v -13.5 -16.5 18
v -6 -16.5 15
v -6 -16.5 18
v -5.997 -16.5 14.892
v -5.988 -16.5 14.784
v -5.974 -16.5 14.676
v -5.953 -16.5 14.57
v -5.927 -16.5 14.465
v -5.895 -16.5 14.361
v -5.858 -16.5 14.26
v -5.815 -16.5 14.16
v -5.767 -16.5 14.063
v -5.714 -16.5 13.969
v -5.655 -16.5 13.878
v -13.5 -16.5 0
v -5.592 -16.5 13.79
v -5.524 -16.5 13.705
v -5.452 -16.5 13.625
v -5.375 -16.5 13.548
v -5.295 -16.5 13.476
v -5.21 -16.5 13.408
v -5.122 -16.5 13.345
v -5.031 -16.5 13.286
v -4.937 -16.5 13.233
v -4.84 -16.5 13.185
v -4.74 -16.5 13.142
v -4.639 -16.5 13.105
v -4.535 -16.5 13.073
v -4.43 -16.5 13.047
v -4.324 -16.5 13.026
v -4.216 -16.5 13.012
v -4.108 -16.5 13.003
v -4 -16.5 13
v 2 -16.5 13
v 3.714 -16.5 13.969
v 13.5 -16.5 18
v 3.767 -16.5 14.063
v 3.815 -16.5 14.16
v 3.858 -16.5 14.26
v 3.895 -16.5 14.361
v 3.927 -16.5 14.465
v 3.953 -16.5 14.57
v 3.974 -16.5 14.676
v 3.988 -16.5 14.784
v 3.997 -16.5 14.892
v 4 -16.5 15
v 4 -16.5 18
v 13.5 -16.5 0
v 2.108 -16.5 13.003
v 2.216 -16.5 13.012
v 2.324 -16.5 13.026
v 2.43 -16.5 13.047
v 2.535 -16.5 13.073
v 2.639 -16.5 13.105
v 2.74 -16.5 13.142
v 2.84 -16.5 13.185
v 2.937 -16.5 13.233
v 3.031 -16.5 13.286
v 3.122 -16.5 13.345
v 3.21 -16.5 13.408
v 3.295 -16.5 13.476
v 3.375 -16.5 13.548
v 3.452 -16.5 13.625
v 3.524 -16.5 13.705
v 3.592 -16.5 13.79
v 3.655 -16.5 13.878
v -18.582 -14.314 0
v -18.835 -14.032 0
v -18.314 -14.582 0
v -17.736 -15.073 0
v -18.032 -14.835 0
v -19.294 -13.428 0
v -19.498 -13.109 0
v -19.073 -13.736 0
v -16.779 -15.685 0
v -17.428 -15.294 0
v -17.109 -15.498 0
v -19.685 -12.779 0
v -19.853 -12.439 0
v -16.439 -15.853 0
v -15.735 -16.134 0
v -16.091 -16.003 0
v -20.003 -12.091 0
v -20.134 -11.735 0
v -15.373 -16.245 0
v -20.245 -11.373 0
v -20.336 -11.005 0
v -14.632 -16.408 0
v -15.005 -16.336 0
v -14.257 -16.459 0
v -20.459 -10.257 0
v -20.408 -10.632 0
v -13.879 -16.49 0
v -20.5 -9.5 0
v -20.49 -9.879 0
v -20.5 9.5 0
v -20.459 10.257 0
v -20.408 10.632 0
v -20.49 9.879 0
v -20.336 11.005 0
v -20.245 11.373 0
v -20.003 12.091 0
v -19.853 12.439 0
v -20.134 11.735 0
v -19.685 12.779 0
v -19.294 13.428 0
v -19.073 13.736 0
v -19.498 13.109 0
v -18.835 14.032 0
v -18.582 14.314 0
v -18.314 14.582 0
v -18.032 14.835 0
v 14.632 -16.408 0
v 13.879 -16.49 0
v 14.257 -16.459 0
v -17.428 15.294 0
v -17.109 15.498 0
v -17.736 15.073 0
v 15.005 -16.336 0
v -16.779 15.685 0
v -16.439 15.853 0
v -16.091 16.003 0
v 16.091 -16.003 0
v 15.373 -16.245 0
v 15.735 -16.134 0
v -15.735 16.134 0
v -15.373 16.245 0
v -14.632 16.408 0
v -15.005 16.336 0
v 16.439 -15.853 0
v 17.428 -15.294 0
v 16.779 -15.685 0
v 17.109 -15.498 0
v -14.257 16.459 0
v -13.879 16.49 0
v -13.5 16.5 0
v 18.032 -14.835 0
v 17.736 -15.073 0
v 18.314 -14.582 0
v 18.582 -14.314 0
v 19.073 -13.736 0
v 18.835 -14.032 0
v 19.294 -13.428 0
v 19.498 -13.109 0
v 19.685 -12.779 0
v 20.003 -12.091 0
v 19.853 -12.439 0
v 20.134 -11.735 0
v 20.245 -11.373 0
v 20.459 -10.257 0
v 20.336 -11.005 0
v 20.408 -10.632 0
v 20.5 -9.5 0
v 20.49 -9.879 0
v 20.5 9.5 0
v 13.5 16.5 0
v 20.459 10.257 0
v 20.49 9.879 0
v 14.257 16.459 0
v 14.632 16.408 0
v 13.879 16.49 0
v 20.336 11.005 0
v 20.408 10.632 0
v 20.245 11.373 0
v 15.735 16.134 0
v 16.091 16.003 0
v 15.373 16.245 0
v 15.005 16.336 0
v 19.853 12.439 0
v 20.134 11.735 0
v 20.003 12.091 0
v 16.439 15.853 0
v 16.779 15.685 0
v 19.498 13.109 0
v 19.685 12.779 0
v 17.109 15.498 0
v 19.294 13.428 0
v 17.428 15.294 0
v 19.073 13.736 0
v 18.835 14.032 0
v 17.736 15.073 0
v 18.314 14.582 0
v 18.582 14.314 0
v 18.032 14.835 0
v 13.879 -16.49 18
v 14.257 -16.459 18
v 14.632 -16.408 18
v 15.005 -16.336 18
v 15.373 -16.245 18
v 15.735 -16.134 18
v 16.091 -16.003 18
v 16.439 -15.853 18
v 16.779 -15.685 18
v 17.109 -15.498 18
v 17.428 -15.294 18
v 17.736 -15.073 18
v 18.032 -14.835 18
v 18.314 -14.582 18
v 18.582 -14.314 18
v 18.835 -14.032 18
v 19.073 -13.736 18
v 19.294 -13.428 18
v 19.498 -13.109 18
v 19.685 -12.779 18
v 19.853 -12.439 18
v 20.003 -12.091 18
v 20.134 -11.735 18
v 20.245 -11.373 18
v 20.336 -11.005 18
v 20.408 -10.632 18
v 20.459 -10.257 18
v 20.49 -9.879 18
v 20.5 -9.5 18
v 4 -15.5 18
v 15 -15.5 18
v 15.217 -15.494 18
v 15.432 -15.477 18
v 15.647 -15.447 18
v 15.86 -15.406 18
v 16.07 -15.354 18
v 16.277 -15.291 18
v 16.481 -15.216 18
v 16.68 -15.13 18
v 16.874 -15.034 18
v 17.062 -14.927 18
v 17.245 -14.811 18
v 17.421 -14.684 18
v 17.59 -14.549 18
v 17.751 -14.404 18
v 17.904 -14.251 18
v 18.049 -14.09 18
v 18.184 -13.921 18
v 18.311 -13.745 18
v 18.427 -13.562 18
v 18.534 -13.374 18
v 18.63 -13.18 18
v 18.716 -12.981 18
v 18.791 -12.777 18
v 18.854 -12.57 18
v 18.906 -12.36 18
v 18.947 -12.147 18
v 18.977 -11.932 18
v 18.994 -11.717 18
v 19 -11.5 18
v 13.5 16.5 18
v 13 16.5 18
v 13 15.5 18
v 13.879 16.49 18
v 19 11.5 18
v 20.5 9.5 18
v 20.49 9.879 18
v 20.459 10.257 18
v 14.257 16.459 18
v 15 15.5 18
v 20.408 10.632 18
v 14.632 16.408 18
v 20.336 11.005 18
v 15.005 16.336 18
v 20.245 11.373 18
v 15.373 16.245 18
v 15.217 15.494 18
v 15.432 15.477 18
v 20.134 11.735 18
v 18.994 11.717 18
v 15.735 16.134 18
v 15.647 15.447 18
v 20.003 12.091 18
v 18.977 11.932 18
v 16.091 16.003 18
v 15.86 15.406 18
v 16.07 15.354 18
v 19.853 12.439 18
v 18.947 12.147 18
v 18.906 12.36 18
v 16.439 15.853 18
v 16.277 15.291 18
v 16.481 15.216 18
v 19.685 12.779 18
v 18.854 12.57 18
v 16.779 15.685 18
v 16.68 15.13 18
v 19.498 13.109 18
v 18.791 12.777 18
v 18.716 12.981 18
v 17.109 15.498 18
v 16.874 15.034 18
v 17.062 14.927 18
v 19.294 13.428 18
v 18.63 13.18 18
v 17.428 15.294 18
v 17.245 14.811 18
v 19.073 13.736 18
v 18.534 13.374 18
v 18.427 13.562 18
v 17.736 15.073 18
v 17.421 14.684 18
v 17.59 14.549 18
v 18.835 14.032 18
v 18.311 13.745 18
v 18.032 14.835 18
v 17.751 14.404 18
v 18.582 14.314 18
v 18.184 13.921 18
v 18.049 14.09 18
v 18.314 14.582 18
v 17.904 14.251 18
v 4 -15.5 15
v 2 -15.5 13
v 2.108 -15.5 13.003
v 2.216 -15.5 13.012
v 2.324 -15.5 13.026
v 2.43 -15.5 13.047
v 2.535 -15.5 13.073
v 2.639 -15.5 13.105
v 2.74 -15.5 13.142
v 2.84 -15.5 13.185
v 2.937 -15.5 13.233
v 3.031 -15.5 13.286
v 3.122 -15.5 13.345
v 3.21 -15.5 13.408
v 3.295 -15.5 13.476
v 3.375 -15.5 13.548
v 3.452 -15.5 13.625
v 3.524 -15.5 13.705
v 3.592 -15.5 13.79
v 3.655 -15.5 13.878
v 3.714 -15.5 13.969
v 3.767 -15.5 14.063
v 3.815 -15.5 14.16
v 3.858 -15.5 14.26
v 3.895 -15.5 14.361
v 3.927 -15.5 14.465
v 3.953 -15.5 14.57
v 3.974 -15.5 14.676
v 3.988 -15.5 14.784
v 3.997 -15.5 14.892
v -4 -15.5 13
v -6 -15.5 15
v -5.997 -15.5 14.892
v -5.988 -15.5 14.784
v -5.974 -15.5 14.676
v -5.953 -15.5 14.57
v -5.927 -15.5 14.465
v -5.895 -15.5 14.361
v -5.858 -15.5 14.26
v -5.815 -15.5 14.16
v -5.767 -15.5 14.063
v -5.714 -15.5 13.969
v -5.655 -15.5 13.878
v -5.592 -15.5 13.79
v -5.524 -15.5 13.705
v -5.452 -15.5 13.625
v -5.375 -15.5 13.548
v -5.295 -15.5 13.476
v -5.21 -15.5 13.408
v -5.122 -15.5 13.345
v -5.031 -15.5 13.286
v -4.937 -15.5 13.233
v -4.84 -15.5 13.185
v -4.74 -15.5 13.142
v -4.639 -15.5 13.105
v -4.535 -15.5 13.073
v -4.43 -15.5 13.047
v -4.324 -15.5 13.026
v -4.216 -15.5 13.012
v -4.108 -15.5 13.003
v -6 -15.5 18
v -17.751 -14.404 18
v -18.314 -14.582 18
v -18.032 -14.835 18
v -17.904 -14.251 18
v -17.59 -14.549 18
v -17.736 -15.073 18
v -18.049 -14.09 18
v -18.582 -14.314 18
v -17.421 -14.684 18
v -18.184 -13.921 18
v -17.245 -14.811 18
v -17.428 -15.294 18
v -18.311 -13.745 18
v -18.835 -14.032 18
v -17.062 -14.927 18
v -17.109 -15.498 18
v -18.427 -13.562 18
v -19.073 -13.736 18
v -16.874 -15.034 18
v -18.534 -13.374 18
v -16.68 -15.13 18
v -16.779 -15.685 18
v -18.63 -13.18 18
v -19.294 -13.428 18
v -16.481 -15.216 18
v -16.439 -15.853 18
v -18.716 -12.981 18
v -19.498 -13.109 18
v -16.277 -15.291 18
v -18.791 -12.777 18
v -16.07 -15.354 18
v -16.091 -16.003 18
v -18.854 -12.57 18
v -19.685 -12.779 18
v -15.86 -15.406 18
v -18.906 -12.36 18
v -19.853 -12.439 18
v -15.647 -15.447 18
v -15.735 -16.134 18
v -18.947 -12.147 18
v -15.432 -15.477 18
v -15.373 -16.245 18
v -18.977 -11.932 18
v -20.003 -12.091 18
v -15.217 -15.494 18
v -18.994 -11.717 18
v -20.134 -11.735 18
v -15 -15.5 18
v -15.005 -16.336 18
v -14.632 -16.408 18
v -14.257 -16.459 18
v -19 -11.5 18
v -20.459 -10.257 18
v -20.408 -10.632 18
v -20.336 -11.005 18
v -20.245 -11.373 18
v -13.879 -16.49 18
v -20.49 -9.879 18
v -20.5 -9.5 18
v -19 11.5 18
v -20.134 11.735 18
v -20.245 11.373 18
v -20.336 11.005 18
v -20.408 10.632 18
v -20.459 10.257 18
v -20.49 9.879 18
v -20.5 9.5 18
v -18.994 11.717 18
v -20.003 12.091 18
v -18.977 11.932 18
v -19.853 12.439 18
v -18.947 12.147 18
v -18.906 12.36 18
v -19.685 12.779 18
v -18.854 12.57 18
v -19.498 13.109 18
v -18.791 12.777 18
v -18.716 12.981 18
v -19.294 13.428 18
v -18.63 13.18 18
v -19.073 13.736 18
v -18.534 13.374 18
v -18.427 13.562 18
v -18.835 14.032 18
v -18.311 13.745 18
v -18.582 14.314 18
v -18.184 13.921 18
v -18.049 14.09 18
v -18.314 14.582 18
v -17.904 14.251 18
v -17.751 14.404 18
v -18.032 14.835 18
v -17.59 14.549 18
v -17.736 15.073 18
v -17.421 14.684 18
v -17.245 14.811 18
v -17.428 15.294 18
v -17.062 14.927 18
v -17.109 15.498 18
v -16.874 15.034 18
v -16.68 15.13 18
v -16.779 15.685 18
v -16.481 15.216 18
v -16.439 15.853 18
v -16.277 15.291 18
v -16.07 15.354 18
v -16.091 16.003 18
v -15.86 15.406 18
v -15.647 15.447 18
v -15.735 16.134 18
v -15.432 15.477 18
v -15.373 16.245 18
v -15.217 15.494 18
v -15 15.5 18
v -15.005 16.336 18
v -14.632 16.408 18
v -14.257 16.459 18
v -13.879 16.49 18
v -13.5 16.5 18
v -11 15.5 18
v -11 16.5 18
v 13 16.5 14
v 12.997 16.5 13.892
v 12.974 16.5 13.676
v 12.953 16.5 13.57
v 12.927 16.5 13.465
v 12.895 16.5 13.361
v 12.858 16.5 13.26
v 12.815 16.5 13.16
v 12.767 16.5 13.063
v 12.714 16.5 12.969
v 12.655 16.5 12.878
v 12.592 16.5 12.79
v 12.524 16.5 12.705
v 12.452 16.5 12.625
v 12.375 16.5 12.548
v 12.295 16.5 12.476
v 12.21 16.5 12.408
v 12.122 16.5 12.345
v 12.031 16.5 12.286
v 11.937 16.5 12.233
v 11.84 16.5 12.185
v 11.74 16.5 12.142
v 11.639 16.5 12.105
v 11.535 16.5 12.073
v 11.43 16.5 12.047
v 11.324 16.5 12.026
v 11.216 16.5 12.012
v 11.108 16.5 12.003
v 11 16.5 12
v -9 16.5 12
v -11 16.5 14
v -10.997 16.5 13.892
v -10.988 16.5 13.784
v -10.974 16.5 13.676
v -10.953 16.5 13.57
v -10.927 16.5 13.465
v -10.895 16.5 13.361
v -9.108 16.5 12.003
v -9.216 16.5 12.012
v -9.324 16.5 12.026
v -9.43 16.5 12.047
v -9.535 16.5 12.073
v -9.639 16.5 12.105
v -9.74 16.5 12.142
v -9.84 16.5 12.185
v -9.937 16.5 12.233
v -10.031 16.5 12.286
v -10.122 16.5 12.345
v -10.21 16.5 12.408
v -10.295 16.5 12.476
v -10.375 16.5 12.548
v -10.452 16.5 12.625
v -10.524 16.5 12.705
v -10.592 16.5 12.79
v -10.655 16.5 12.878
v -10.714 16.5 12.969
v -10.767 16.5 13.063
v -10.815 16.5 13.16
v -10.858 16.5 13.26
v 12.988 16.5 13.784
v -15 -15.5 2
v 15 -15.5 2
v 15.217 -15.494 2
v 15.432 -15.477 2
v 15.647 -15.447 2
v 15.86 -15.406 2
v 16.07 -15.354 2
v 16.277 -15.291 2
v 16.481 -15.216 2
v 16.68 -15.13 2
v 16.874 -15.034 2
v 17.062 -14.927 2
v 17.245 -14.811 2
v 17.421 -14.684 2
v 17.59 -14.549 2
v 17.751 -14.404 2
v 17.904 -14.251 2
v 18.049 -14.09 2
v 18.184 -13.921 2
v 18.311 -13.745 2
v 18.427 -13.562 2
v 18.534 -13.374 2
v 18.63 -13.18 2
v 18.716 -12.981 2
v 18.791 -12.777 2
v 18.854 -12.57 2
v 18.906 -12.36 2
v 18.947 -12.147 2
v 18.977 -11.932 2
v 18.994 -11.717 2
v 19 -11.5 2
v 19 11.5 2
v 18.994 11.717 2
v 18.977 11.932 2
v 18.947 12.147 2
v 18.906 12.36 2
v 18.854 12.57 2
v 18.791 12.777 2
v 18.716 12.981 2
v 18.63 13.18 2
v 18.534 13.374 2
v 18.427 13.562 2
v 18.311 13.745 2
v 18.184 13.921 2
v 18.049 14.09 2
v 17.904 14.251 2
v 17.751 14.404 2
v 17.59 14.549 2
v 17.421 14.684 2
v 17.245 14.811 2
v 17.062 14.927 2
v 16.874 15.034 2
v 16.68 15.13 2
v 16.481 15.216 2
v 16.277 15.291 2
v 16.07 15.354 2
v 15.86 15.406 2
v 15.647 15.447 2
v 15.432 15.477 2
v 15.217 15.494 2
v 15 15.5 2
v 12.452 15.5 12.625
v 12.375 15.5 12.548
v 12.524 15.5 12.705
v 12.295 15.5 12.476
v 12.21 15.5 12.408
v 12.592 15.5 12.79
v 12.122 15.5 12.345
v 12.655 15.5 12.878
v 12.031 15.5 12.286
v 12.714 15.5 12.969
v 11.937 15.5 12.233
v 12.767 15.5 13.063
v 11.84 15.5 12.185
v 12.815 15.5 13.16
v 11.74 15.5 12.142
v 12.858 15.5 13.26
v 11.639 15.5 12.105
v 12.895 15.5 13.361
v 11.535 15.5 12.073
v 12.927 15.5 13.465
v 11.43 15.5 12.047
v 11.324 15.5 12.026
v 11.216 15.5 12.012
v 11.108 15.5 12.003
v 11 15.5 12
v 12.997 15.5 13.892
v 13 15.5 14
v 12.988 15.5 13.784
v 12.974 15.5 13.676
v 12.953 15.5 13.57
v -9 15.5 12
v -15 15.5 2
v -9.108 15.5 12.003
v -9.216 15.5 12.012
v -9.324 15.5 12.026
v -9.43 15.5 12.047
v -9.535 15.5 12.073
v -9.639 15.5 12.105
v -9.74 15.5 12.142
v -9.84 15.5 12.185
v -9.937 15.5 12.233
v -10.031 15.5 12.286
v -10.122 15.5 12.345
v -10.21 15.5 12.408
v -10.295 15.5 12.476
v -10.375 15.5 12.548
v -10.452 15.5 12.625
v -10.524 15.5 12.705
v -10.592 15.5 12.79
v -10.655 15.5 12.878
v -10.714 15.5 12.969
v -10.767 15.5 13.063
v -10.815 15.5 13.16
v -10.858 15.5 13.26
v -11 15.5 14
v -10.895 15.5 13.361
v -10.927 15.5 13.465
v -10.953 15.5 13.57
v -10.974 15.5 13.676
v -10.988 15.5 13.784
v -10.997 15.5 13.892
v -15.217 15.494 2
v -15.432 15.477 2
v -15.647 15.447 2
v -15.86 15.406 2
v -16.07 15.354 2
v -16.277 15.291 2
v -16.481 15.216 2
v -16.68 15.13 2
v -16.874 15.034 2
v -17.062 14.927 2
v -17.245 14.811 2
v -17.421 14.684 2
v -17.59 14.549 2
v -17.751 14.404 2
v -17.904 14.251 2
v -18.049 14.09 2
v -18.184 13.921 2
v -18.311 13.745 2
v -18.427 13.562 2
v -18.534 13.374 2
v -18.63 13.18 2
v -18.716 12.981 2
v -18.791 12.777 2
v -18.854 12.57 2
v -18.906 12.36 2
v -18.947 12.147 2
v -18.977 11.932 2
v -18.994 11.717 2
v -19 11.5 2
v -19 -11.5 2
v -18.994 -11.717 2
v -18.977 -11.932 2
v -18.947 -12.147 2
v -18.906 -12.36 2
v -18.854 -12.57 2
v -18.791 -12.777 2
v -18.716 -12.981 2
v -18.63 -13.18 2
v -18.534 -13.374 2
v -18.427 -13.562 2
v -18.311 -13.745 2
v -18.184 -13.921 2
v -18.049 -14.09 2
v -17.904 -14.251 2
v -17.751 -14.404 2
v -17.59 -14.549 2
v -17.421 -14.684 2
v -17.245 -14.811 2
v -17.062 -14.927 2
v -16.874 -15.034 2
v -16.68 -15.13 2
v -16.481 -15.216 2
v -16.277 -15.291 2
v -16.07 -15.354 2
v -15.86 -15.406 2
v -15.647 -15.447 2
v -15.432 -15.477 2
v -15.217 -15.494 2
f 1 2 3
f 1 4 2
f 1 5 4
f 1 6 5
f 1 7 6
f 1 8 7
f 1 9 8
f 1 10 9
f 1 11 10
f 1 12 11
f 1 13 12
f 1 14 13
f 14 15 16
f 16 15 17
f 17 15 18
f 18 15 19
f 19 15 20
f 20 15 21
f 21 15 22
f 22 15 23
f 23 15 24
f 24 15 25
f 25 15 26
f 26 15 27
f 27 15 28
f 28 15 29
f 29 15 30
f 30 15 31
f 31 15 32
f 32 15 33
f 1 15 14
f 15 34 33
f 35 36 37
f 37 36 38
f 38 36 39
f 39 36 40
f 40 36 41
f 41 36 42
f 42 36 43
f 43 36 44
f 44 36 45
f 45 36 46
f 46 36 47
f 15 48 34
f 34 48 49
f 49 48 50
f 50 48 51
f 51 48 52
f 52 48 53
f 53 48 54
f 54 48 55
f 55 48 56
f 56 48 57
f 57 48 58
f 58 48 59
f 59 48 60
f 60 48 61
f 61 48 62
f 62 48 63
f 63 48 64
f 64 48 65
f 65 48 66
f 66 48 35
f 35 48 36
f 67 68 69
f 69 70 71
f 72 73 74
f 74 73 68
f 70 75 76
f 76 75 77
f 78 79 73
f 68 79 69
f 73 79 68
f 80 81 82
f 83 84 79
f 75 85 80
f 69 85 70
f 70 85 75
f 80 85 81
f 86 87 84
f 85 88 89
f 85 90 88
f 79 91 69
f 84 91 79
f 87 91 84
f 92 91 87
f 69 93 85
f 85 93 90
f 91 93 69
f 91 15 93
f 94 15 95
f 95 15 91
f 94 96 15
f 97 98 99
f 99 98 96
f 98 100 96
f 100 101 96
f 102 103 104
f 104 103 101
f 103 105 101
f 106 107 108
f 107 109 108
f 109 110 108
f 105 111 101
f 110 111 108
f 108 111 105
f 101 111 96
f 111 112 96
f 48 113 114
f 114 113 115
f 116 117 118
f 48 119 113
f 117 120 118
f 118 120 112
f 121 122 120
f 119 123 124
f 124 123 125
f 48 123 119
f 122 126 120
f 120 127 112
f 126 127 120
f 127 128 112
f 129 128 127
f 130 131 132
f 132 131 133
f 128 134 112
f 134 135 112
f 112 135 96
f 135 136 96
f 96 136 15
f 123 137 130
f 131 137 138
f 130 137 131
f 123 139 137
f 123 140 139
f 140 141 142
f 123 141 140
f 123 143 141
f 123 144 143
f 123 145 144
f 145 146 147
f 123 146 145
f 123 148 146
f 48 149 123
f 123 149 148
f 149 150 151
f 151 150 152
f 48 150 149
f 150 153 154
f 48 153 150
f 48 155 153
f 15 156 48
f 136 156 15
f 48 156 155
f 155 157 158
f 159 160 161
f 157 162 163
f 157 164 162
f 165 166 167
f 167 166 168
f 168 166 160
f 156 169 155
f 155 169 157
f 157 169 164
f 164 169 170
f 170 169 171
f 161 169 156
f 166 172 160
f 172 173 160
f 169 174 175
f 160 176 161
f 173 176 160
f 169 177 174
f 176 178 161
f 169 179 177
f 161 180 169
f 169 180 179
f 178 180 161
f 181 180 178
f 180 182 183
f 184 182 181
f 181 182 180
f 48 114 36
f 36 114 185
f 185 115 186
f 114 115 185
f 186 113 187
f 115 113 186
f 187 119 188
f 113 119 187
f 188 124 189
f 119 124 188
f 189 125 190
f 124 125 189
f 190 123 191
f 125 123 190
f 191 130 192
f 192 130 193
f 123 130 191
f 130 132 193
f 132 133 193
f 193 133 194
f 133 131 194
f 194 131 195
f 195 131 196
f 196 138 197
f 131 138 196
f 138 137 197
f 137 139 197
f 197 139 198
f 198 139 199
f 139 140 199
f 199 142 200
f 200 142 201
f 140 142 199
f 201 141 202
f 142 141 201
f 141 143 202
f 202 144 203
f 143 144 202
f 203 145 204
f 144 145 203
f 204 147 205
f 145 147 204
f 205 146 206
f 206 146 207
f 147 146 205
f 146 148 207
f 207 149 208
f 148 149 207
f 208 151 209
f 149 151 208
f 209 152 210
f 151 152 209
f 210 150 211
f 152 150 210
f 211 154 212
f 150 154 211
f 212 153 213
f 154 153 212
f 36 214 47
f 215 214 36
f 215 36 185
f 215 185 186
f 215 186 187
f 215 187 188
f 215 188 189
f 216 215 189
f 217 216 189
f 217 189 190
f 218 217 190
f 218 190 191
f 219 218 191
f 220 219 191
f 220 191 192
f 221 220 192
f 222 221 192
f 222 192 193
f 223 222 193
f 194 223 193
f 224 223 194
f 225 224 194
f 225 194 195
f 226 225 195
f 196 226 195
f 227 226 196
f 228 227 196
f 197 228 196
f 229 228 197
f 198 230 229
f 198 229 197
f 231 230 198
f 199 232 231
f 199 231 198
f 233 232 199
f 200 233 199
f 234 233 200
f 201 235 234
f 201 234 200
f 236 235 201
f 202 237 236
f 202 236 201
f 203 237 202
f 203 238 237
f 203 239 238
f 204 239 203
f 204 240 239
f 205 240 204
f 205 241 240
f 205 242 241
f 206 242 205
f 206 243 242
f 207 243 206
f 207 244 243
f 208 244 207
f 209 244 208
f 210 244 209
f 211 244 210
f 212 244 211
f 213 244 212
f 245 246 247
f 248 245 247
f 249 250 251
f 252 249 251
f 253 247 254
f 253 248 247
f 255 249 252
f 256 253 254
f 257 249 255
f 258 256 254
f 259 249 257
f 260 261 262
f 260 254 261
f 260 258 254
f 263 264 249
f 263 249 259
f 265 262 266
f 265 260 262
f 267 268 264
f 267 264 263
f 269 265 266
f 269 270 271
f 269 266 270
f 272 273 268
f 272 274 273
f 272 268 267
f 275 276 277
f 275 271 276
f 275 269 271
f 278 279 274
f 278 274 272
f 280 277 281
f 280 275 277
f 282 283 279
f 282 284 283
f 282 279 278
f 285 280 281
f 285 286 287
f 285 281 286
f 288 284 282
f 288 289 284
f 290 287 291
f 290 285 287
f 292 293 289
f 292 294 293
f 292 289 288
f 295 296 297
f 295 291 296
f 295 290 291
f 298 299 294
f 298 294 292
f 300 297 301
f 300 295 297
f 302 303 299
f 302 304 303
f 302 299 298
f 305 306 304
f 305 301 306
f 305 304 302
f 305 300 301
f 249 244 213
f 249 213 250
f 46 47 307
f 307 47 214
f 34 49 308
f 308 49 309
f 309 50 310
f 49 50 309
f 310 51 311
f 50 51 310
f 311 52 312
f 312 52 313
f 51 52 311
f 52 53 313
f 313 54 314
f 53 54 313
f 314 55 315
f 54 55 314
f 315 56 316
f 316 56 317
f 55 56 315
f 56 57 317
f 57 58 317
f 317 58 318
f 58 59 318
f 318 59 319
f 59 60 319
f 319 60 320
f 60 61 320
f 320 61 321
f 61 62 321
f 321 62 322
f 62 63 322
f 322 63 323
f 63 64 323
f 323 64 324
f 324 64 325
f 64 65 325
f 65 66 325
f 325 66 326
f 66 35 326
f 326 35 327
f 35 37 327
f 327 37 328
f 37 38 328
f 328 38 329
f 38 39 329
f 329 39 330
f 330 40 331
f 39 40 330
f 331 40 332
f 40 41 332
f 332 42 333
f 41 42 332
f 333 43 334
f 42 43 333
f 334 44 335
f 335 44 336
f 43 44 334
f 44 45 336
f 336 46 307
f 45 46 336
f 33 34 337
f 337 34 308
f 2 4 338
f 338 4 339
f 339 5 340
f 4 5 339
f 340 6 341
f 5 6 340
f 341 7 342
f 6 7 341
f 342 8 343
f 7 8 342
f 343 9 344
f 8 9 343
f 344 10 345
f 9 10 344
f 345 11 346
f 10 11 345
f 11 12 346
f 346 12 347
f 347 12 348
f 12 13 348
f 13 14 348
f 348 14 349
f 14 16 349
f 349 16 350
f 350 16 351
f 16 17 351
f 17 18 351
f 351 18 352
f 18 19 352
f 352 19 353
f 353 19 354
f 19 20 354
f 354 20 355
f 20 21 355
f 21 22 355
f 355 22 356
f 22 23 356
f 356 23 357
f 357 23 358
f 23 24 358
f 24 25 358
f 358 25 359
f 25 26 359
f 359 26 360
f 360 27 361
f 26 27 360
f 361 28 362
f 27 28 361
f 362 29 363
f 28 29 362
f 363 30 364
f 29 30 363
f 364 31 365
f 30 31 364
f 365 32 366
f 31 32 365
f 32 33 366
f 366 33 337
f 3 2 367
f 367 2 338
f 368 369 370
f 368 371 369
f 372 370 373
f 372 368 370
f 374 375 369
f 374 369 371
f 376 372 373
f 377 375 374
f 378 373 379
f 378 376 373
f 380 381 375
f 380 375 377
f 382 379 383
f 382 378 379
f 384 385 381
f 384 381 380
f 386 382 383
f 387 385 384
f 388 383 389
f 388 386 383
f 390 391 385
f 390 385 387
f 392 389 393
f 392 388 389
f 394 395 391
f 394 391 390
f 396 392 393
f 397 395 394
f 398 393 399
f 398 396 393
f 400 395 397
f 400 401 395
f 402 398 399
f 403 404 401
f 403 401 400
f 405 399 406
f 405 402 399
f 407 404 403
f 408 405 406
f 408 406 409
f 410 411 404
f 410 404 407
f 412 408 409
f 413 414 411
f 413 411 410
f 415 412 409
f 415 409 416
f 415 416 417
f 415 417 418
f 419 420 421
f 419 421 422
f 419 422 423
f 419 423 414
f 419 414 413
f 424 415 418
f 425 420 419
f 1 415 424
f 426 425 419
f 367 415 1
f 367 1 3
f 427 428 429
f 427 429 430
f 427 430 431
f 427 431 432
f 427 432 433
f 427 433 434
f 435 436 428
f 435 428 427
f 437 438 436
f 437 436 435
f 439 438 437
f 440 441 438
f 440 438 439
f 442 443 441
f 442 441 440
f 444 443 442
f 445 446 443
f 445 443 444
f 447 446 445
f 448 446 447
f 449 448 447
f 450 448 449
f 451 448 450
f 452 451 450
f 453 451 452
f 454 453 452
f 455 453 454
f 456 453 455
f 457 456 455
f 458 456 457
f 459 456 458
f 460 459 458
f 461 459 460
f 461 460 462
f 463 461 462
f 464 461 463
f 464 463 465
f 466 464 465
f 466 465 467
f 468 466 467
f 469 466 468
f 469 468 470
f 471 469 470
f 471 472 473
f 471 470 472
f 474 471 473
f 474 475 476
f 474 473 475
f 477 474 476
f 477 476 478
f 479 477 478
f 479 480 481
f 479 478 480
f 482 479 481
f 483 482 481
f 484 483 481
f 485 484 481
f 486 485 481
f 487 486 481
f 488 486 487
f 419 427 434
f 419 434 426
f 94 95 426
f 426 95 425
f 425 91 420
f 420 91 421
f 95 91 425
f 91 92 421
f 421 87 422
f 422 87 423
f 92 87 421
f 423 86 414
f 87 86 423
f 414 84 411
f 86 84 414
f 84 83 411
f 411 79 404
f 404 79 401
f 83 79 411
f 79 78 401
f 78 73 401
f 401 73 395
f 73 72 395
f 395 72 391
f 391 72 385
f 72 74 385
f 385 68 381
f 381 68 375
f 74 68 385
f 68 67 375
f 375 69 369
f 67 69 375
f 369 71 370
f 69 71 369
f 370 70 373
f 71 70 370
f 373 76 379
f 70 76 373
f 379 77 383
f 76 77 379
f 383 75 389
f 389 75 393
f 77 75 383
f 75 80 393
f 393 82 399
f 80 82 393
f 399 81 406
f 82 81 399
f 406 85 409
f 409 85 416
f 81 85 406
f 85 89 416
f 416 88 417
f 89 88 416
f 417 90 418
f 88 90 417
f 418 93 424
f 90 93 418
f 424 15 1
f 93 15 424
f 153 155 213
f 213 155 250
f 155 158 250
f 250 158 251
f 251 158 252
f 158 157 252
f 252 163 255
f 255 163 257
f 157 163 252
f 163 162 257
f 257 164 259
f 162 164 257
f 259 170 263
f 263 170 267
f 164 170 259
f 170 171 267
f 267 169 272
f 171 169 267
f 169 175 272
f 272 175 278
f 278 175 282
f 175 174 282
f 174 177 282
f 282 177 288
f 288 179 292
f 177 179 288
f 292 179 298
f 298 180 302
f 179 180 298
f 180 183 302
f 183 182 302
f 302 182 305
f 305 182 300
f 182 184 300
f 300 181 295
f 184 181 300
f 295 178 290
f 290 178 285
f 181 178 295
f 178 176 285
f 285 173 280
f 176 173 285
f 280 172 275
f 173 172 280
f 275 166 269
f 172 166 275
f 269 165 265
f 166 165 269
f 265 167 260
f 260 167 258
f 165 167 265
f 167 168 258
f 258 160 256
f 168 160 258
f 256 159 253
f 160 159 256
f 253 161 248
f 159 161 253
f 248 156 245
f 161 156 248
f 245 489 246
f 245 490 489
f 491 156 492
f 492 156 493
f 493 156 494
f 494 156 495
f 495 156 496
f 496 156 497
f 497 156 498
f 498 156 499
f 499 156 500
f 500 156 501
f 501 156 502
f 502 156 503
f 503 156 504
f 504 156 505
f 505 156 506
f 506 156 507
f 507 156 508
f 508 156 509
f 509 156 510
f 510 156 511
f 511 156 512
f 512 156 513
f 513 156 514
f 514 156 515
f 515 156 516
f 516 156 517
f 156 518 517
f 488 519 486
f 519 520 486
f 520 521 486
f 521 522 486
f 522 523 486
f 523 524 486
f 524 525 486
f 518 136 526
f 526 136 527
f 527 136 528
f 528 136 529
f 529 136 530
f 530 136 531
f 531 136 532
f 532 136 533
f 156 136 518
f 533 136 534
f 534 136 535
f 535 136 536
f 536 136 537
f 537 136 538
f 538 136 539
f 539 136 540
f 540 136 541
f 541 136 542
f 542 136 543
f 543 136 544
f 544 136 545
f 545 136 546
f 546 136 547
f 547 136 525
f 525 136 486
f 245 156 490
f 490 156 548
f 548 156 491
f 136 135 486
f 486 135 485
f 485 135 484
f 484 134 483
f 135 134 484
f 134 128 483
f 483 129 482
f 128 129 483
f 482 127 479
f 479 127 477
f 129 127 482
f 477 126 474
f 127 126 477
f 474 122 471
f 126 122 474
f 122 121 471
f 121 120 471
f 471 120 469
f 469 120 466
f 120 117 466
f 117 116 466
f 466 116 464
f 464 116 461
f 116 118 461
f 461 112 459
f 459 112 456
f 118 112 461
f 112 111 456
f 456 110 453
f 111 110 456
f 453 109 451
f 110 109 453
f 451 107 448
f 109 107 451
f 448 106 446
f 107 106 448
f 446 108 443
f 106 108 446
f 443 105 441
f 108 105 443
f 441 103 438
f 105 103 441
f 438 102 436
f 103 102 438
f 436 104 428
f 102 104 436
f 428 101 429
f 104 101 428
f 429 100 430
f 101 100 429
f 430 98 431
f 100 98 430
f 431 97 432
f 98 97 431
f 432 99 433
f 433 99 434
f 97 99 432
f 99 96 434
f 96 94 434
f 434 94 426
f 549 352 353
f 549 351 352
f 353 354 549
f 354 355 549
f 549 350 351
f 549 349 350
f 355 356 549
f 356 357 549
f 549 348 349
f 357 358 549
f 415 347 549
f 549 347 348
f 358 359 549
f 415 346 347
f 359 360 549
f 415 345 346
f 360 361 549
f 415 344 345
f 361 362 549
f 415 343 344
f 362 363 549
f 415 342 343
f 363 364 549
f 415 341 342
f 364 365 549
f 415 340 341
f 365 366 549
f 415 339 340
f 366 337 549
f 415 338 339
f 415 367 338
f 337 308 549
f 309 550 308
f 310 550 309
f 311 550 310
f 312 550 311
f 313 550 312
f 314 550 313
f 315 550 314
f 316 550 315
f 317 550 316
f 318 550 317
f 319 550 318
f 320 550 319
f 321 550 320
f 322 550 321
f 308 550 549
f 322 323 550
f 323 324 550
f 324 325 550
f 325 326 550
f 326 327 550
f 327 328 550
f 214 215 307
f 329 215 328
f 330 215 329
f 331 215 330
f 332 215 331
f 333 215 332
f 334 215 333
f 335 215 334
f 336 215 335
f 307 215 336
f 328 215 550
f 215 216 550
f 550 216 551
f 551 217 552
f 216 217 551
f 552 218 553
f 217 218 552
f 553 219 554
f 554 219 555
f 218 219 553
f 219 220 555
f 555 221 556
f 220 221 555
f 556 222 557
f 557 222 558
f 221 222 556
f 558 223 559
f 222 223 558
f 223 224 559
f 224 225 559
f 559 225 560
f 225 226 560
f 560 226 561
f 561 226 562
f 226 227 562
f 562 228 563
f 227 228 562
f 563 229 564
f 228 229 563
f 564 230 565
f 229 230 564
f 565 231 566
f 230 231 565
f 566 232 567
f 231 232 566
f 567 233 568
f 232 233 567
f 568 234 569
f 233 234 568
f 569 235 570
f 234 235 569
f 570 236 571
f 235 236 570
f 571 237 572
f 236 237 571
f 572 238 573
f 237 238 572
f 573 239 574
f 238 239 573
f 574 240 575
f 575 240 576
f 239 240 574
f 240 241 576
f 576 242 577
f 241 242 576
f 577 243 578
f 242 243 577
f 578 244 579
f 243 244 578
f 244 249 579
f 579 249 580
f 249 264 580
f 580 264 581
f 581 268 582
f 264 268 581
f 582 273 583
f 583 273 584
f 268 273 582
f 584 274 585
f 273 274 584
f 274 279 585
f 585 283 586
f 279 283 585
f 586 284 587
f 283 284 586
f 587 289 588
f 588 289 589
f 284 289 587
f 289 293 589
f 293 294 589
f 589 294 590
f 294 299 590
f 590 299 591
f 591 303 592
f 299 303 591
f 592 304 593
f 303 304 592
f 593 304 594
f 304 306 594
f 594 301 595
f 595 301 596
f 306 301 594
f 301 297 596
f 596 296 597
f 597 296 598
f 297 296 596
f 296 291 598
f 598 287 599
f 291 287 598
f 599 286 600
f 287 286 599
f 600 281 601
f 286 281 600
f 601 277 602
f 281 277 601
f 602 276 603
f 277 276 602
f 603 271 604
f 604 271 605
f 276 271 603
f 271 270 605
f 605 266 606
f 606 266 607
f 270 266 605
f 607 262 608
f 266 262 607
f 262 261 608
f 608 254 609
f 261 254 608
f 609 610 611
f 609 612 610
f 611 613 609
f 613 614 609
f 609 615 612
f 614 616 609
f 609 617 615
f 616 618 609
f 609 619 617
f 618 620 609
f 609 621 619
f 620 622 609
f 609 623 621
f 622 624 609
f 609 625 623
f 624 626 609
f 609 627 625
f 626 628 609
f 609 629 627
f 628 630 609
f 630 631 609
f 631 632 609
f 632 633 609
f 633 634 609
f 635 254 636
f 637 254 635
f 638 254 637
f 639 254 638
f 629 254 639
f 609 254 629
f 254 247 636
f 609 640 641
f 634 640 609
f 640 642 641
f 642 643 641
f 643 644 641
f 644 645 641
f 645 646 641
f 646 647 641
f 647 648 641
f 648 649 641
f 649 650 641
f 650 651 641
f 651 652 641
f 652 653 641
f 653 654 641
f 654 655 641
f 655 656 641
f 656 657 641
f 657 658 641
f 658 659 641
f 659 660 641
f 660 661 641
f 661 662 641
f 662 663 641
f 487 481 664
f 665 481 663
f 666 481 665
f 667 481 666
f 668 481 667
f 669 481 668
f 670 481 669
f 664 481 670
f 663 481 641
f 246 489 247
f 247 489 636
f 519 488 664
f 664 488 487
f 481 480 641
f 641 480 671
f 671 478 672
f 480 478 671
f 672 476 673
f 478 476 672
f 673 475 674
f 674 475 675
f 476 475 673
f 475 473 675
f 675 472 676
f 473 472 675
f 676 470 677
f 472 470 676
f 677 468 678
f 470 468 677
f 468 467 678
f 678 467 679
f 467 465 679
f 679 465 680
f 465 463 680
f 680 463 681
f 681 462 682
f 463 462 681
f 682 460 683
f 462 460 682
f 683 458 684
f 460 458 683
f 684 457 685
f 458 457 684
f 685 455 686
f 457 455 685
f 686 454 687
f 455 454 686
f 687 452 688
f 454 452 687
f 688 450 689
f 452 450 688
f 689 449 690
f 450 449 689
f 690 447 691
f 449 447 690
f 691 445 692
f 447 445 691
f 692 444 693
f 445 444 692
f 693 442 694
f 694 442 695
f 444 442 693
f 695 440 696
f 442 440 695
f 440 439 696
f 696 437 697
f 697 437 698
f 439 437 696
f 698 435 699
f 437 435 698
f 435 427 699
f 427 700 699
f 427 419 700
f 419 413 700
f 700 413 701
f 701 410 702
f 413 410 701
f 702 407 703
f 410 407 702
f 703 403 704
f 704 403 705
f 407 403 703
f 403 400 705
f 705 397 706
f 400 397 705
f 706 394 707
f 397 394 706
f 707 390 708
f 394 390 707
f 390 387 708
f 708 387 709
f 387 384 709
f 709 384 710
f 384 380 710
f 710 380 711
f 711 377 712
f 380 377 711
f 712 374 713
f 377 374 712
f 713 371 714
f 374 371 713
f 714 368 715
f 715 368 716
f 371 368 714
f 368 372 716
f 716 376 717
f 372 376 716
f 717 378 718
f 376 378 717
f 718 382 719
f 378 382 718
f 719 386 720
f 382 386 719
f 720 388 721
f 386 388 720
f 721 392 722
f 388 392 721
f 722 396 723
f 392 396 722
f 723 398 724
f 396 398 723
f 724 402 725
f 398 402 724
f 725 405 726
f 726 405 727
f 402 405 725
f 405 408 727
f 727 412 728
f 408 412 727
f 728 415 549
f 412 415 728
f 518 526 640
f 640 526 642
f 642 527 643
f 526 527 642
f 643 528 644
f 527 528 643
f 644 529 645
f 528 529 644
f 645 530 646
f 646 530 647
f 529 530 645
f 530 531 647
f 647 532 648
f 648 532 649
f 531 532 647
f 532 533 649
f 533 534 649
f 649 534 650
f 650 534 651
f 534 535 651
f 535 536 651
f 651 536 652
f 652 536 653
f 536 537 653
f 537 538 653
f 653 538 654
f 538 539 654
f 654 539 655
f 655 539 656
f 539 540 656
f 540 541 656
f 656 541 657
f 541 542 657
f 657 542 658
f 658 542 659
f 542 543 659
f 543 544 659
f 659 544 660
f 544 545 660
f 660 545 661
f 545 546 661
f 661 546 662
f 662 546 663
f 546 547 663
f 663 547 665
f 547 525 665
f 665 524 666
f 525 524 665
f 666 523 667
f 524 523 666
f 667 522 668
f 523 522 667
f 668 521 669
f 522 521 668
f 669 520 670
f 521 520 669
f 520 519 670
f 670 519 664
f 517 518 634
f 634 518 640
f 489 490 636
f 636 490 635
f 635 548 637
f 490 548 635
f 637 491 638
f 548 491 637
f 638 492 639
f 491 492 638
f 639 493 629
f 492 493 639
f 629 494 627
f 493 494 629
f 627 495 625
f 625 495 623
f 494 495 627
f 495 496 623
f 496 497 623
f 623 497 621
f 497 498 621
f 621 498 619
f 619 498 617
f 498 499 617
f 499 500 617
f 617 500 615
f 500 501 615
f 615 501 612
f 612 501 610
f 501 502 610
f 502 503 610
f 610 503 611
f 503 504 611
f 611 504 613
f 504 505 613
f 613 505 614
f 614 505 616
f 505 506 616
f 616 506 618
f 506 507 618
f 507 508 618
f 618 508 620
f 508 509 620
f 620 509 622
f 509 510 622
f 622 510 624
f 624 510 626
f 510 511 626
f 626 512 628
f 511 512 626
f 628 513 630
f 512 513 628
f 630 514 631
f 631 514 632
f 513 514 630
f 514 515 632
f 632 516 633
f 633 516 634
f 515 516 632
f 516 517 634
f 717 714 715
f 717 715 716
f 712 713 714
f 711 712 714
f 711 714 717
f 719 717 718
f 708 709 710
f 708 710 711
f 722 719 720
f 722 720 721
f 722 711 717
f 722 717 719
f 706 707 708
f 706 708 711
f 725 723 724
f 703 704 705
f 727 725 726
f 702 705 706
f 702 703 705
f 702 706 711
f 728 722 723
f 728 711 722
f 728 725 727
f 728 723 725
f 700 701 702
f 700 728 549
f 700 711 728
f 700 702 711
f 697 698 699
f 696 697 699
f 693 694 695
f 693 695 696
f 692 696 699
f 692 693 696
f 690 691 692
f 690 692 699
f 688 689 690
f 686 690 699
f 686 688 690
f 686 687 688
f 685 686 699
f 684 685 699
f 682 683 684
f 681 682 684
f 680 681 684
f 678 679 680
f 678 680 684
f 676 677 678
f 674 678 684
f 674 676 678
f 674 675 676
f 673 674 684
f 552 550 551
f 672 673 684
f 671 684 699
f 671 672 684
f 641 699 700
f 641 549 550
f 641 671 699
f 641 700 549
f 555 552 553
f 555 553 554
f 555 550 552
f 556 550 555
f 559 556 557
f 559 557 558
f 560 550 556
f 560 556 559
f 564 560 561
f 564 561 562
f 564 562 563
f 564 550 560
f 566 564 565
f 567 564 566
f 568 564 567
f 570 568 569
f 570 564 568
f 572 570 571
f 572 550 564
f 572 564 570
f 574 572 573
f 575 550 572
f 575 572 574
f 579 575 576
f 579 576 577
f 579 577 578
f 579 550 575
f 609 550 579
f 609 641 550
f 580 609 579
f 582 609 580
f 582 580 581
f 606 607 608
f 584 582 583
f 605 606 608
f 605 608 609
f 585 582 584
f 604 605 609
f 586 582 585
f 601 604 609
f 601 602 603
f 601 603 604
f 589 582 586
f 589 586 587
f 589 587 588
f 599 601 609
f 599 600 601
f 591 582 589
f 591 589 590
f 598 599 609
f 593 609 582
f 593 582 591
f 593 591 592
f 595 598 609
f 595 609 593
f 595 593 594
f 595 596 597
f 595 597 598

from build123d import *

# Parameters (mm, degrees)
PAD_DEPTH       = 18
POCKET_DEPTH    = 16
POCKET001_DEPTH = 5
POCKET002_DEPTH = 5


with BuildPart() as part:
    # Sketch → Pad (new body)
    with BuildSketch(Plane.XY):
        with BuildLine():
            Line((-13.5, -16.5), (13.5, -16.5))
            ThreePointArc((13.5, -16.5), (18.449747, -14.449747), (20.5, -9.5))
            Line((20.5, -9.5), (20.5, 9.5))
            ThreePointArc((20.5, 9.5), (18.449747, 14.449747), (13.5, 16.5))
            Line((13.5, 16.5), (-13.5, 16.5))
            ThreePointArc((-13.5, 16.5), (-18.449747, 14.449747), (-20.5, 9.5))
            Line((-20.5, 9.5), (-20.5, -9.5))
            ThreePointArc((-20.5, -9.5), (-18.449747, -14.449747), (-13.5, -16.5))
        make_face()
    extrude(amount=PAD_DEPTH)

    # Sketch001 (on Face10 of Pad) → Pocket (cut)
    with BuildSketch(Plane.XY.offset(18)):
        with BuildLine():
            Line((-19, 11.5), (-19, -11.5))
            ThreePointArc((-19, -11.5), (-17.828427, -14.328427), (-15, -15.5))
            Line((-15, -15.5), (15, -15.5))
            ThreePointArc((15, -15.5), (17.828427, -14.328427), (19, -11.5))
            Line((19, -11.5), (19, 11.5))
            ThreePointArc((19, 11.5), (17.828427, 14.328427), (15, 15.5))
            Line((15, 15.5), (-15, 15.5))
            ThreePointArc((-15, 15.5), (-17.828427, 14.328427), (-19, 11.5))
        make_face()
    extrude(amount=-POCKET_DEPTH, mode=Mode.SUBTRACT)

    # Sketch002 (on Face1 of Pocket) → Pocket001 (cut)
    with BuildSketch(Plane.XZ.offset(16.5)):
        with BuildLine():
            Line((-6, 18), (-6, 15))
            ThreePointArc((-6, 15), (-5.414214, 13.585786), (-4, 13))
            Line((-4, 13), (2, 13))
            ThreePointArc((2, 13), (3.414214, 13.585786), (4, 15))
            Line((4, 15), (4, 18))
            ThreePointArc((4, 18), (3.414214, 19.414214), (2, 20))
            Line((2, 20), (-4, 20))
            ThreePointArc((-4, 20), (-5.414214, 19.414214), (-6, 18))
        make_face()
    extrude(amount=-POCKET001_DEPTH, mode=Mode.SUBTRACT)

    # Sketch003 (on Face13 of Pocket001) → Pocket002 (cut)
    with BuildSketch(Plane(origin=(0, 16.5, 0), x_dir=(-1, 0, 0), z_dir=(0, 1, 0))):
        with BuildLine():
            Line((-13, 18), (-13, 14))
            ThreePointArc((-13, 14), (-12.414214, 12.585786), (-11, 12))
            Line((-11, 12), (9, 12))
            ThreePointArc((9, 12), (10.414214, 12.585786), (11, 14))
            Line((11, 14), (11, 18))
            ThreePointArc((11, 18), (10.414214, 19.414214), (9, 20))
            Line((9, 20), (-11, 20))
            ThreePointArc((-11, 20), (-12.414214, 19.414214), (-13, 18))
        make_face()
    extrude(amount=-POCKET002_DEPTH, mode=Mode.SUBTRACT)


solid = part.part
